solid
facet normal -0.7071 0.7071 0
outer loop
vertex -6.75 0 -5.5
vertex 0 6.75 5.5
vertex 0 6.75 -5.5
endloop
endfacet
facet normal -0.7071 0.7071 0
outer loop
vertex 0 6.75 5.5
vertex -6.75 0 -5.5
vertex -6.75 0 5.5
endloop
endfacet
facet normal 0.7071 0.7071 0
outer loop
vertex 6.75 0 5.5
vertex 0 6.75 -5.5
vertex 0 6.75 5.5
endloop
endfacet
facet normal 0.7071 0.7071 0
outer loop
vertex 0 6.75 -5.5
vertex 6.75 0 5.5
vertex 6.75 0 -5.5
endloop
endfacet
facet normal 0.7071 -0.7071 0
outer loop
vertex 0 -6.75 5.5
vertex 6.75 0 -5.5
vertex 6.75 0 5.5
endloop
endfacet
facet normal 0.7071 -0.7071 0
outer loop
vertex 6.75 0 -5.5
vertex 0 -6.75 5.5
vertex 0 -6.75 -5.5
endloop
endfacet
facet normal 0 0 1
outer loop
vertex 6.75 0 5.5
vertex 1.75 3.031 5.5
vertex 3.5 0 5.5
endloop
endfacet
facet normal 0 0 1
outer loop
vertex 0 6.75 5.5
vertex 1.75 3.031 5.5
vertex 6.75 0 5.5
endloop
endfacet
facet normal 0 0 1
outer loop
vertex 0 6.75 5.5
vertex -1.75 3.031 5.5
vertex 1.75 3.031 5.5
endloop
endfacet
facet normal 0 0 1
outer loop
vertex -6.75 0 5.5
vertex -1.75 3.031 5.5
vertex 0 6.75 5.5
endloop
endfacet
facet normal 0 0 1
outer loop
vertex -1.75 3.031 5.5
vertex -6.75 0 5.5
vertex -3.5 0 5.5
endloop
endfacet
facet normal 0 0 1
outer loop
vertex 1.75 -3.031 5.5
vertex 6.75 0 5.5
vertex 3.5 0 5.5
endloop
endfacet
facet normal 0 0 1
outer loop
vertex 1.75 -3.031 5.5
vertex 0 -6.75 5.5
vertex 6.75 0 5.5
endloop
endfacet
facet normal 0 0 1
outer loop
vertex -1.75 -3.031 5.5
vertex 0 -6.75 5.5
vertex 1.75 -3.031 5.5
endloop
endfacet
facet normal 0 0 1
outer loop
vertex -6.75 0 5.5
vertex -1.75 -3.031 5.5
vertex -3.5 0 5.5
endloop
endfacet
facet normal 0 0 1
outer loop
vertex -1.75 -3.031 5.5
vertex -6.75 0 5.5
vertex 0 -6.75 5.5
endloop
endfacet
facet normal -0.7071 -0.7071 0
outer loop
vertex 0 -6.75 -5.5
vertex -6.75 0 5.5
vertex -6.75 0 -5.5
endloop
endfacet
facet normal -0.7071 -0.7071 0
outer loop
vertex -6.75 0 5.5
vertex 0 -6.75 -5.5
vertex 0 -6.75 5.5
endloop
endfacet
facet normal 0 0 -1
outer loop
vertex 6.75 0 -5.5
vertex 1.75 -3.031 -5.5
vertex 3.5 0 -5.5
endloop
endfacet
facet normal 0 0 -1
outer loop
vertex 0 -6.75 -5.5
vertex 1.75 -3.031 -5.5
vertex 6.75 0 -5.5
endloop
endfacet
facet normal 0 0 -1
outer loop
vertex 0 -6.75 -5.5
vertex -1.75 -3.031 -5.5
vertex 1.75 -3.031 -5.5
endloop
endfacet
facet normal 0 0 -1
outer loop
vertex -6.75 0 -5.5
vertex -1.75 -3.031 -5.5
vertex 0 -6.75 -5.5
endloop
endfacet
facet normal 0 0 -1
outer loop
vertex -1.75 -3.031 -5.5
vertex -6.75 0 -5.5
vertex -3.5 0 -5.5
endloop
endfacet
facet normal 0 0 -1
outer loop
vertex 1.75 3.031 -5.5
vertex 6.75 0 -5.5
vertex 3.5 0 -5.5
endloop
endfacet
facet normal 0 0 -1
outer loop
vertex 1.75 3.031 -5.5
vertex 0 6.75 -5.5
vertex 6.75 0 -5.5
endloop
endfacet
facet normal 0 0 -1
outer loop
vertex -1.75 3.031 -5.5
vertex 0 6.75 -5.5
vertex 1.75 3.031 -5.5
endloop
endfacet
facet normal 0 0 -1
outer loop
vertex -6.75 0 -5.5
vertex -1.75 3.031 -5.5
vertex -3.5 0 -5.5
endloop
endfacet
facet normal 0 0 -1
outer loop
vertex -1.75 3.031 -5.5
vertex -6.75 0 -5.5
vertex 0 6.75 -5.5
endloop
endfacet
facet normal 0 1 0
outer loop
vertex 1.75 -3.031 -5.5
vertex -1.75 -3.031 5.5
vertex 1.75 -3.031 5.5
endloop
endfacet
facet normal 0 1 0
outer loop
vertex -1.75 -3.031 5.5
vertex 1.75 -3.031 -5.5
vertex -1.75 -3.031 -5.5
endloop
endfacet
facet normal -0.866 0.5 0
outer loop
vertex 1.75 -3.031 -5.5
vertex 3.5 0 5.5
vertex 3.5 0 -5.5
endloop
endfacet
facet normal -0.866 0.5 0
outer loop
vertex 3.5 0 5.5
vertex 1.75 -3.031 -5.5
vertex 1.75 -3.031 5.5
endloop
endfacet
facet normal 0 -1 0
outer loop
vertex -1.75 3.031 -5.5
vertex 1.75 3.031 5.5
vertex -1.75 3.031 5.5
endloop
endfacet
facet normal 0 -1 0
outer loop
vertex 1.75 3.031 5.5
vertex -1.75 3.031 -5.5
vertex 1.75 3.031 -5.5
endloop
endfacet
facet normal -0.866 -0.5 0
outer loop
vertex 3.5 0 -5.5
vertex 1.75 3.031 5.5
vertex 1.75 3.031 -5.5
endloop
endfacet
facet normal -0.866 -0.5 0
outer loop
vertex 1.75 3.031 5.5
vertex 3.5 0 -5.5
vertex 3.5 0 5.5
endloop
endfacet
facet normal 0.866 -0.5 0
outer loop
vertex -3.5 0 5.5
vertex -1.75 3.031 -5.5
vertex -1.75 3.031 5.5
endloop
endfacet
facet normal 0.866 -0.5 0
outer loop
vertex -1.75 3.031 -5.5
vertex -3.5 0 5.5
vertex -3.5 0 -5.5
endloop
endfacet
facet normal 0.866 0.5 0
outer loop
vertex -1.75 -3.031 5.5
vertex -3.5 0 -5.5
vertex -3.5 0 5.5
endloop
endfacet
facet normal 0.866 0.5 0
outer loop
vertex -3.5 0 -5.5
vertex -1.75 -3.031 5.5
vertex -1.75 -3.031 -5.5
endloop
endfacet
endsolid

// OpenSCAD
difference() {
  cylinder(r=13.50/2, h=11, center=true, $fn=4);
  translate([0,0,-0.5]) cylinder(r=7.00/2, h=12, center=true, $fn=6);
}
